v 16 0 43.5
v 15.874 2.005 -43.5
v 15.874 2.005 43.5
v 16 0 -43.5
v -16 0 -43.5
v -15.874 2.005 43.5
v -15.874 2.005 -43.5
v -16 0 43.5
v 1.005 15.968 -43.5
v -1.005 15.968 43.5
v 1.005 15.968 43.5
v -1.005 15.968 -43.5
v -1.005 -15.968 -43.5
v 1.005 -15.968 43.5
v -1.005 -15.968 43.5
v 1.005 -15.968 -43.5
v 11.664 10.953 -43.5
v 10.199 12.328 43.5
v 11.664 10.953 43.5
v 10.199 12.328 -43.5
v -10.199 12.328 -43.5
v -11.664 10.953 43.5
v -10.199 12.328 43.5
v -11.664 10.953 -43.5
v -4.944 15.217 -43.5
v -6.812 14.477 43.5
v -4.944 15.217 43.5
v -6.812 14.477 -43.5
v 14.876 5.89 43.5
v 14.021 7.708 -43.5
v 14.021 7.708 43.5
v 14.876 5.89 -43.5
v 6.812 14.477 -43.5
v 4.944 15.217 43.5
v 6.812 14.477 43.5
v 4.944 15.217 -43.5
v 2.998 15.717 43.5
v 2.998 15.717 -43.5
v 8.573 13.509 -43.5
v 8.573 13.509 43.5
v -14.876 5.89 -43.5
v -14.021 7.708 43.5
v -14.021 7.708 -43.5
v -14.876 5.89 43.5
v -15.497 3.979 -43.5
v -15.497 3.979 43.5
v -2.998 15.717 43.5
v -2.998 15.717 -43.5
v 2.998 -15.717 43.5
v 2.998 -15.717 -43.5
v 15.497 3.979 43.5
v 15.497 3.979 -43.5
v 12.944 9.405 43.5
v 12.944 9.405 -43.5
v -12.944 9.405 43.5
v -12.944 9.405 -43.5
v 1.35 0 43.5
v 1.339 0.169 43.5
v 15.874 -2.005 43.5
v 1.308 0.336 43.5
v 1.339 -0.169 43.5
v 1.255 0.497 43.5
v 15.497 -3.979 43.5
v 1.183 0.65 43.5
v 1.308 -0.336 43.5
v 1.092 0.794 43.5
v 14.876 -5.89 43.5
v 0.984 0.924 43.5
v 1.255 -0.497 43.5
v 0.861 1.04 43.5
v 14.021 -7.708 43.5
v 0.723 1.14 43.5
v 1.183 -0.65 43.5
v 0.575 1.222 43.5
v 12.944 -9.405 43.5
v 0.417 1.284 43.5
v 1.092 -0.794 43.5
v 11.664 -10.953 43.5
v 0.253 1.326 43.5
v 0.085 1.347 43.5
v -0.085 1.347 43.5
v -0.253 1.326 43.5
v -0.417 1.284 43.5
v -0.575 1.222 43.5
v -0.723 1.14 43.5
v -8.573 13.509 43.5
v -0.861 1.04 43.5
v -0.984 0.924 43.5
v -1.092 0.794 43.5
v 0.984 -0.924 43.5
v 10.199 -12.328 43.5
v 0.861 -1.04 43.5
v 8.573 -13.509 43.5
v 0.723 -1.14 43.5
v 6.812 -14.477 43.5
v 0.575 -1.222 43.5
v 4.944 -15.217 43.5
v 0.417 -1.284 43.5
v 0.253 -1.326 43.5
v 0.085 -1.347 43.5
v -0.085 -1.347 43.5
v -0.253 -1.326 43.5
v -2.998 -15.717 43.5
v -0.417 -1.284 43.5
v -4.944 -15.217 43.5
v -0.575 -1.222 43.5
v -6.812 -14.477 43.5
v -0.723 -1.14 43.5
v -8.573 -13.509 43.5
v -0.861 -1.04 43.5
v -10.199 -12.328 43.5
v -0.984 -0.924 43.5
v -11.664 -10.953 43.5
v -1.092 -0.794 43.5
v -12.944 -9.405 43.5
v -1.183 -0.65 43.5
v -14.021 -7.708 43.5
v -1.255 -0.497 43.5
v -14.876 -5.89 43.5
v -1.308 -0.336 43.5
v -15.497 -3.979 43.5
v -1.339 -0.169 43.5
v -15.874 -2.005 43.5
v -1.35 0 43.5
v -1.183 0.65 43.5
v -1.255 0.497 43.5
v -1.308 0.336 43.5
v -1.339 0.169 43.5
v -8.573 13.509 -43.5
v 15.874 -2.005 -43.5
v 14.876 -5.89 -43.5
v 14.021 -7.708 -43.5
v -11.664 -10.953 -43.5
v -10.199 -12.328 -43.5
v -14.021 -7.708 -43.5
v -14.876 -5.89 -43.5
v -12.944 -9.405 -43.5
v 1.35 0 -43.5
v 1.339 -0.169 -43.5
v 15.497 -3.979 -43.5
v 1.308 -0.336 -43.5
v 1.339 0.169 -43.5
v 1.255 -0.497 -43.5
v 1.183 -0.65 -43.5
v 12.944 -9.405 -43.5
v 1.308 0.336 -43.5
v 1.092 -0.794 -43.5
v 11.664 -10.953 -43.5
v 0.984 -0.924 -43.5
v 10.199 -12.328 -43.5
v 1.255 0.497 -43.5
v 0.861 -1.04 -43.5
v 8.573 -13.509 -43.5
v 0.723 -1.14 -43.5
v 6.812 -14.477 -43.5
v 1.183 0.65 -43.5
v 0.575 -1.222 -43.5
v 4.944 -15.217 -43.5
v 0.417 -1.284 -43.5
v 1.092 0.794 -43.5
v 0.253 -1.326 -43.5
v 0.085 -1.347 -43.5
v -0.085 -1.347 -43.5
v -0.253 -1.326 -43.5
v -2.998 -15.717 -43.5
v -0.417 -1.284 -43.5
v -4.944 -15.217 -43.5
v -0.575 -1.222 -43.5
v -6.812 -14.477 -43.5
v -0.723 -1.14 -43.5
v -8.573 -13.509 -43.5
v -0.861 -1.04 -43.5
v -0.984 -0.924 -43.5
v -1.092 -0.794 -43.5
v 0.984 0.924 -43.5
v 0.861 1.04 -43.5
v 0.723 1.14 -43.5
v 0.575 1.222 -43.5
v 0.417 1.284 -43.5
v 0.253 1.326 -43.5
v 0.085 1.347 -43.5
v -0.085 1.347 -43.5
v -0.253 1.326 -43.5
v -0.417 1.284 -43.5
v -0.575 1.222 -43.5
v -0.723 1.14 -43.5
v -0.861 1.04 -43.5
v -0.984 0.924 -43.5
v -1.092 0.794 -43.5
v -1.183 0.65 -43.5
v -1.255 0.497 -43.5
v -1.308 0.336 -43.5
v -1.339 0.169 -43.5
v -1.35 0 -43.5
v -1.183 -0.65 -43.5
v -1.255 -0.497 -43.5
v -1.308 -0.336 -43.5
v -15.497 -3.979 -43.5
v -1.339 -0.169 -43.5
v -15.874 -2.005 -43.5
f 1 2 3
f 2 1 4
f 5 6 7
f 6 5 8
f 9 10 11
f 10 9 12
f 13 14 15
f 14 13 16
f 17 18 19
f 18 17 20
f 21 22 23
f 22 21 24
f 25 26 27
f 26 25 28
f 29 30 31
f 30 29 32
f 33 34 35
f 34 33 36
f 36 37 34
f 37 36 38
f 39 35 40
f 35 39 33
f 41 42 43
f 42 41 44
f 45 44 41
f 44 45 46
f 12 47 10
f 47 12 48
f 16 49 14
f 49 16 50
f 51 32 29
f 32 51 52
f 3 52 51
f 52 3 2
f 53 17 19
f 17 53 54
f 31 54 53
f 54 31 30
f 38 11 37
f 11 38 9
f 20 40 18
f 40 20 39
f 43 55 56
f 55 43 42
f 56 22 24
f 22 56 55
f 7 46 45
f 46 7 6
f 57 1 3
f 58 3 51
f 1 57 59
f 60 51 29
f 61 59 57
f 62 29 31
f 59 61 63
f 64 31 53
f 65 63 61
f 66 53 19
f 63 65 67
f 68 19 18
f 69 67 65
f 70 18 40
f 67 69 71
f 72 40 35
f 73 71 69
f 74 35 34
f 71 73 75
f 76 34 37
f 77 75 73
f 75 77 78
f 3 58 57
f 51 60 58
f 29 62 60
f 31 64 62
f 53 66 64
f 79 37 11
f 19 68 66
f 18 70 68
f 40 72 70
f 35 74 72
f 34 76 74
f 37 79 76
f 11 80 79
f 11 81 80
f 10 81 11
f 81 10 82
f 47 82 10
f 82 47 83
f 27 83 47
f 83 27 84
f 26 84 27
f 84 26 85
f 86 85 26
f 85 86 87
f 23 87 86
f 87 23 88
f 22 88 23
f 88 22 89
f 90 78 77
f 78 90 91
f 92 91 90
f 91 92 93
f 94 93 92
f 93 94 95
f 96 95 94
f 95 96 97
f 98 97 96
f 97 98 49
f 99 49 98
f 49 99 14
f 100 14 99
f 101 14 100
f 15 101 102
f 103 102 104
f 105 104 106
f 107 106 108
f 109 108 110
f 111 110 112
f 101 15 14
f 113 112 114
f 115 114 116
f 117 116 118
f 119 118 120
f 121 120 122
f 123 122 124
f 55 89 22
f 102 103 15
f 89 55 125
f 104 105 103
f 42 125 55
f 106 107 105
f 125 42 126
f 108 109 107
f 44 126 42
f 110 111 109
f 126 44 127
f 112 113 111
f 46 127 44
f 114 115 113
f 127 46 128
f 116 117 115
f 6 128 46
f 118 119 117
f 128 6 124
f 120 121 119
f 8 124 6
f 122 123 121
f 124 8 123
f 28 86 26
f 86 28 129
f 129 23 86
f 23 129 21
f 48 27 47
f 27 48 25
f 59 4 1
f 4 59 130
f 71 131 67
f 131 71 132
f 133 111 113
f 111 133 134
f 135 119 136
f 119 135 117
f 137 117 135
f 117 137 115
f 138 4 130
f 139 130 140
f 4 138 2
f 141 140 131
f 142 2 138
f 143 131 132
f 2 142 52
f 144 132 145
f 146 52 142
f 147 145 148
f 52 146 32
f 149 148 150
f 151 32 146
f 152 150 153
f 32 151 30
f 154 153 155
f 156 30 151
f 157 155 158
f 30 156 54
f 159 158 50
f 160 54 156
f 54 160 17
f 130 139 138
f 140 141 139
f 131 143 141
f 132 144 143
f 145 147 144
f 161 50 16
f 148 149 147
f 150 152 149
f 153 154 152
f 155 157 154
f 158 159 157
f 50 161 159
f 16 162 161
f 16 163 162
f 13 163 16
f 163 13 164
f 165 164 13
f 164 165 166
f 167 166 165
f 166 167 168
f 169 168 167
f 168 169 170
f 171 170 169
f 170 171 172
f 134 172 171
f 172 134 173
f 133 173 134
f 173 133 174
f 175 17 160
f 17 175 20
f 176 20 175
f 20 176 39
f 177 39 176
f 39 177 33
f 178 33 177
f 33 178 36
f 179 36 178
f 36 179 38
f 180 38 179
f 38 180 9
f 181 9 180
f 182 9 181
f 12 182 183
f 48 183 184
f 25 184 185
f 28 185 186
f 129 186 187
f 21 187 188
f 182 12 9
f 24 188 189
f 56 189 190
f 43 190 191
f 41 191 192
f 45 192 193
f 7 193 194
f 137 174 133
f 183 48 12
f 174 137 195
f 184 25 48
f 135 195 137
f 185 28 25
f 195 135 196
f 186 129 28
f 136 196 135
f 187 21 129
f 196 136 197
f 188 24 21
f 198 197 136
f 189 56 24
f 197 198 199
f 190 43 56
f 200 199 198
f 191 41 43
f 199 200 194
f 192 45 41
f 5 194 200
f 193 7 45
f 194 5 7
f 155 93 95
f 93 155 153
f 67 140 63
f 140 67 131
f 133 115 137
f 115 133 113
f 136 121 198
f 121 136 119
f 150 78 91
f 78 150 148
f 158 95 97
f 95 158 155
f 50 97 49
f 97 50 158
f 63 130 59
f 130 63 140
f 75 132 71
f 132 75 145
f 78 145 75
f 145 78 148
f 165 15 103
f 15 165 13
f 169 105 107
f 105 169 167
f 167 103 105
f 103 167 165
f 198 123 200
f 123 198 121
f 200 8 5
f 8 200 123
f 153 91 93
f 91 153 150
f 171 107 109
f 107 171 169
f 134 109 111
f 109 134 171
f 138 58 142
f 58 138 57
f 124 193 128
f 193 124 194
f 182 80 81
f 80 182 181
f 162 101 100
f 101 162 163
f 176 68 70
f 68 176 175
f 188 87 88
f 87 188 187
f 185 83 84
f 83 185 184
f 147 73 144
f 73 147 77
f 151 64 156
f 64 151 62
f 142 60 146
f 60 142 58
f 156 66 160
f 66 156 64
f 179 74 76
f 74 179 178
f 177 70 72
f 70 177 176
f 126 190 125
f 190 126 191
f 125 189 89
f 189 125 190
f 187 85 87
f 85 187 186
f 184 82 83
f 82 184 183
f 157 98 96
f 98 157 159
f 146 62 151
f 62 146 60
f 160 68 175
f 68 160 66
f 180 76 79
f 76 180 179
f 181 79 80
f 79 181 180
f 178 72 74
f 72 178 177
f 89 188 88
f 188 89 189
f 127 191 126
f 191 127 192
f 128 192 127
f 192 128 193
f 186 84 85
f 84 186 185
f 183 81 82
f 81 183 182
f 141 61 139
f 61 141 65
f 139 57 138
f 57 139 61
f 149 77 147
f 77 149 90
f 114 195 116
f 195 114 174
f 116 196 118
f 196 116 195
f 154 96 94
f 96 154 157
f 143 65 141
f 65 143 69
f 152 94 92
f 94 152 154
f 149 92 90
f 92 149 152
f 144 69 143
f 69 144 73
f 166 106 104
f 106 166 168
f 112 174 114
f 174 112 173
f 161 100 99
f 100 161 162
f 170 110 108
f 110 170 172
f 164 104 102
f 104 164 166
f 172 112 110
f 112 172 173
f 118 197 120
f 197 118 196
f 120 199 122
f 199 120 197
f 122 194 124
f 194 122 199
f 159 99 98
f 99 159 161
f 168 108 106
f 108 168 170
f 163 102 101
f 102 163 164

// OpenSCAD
$fn = 50;


difference() {
	union() {
		translate(v = [0, 0, -43.5000000000]) {
			cylinder(h = 87, r = 16.0000000000);
		}
	}
	union() {
		translate(v = [0, 0, -100.0000000000]) {
			cylinder(h = 200, r = 1.3500000000);
		}
	}
}
